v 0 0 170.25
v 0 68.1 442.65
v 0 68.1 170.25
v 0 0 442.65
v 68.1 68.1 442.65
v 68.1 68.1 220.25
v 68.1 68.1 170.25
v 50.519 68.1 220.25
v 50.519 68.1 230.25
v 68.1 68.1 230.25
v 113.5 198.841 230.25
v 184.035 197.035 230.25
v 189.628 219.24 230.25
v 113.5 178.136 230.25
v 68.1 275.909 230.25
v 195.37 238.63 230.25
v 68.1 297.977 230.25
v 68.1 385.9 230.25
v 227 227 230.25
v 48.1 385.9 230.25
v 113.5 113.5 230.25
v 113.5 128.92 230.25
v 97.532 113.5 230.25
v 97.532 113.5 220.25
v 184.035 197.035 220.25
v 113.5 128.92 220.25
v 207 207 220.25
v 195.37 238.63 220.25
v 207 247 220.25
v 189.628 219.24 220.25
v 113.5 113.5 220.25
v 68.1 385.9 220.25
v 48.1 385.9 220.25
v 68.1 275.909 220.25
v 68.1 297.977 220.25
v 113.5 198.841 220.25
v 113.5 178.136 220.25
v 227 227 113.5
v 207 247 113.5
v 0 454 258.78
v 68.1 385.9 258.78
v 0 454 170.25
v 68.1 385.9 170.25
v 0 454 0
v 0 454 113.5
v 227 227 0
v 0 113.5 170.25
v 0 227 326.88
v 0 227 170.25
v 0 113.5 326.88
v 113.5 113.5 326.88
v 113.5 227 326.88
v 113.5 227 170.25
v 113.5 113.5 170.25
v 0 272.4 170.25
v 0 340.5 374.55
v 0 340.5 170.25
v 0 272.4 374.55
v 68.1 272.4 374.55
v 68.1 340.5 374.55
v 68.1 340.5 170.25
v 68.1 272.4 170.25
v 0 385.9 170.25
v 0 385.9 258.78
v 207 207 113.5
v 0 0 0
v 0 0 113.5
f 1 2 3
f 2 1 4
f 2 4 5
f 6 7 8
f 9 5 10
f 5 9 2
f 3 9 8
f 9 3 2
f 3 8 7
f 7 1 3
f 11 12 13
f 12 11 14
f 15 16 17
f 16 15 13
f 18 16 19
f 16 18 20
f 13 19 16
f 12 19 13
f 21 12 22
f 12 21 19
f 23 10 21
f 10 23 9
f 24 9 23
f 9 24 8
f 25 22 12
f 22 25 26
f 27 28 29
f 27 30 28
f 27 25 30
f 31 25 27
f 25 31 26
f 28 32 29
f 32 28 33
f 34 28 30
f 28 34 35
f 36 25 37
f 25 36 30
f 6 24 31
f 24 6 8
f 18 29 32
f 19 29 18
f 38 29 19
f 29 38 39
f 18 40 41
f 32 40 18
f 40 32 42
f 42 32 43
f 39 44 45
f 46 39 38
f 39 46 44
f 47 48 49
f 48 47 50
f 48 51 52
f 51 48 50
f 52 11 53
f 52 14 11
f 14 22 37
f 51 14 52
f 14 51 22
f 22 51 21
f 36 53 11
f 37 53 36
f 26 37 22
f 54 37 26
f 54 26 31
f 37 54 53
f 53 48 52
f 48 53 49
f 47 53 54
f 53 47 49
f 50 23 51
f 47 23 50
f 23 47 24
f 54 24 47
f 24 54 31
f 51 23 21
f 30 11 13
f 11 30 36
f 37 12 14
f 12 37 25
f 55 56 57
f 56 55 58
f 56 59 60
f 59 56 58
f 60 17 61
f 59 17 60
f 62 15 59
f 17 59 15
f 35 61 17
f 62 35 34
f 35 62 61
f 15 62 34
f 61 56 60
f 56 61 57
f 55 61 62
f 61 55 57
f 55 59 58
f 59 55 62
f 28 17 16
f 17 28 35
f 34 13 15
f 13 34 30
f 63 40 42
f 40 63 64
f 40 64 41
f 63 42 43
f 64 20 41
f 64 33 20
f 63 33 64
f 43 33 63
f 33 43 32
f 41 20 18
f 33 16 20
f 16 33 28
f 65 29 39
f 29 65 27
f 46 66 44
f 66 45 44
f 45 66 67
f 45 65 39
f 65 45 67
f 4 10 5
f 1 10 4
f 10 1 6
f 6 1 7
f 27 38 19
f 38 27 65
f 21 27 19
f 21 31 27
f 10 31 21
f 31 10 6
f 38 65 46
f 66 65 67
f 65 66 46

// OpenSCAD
logo_base_size=454;
logo_base_height=logo_base_size*.25;

pillar_z_offset = 2;
pillar_7_x_scale = .25;
pillar_7_z_scale =  5;

pillar_spacing = .1;
pillar_vs_base_scaling_factor = .6;

normal_pillar_base = .15;
wide_pillar_base = .25;


analytics_pillar_support_height = 230;

module analytics_pillar(base_ratio, 
                        height_ratio,
                        x_offset_ratio, 
                        y_offset_ratio, 
                        z_offset_ratio,
                        support_angle){

    difference(){
        pillar_base = logo_base_size * base_ratio;
        pillar_height = logo_base_height * height_ratio;
        
        if(y_offset_ratio > 0) {
                y_offset = (y_offset_ratio * logo_base_size) - pillar_base;
                translate([0,
                    y_offset, 
                    z_offset_ratio*logo_base_height])
                       
            union(){
                cube([pillar_base,pillar_base,pillar_height]);
                color("red")
                translate([pillar_base/2-10, pillar_base/2-10,50])
                rotate(support_angle)
                cube([300, 20, 10]);
            }
            
        } else {
            translate([(x_offset_ratio * logo_base_size) - pillar_base,
                (y_offset_ratio * logo_base_size), 
                 z_offset_ratio*logo_base_height]) 
            
            union(){
                cube([pillar_base,pillar_base,pillar_height]);
                color("red")
                translate([pillar_base/2+10,pillar_base/2,50])
                rotate(support_angle)
                cube([300, 20, 10]);
            }
                      
        }
        
        linear_extrude(1000)
            polygon(points =[
                                [logo_base_size,logo_base_size],
                                [logo_base_size,0],
                                [0,logo_base_size]
                             ]
            );
        
    }
    
    
}




difference(){
    union(){
        //base
        linear_extrude(logo_base_height)
            polygon(points =[
                                [0,0],
                                [logo_base_size,0],
                                [0,logo_base_size]
                            ]
                    );



        //Origin
        analytics_pillar(base_ratio=normal_pillar_base, 
                         height_ratio = 4* pillar_vs_base_scaling_factor, 
                         x_offset_ratio = normal_pillar_base,
                         y_offset_ratio = 0, 
                         z_offset_ratio = 1.5,
                         support_angle=44);

        //X-Pillars
        analytics_pillar(base_ratio=wide_pillar_base, 
                         height_ratio = 3* pillar_vs_base_scaling_factor, 
                         x_offset_ratio = 1- (2 * normal_pillar_base + 2* pillar_spacing), 
                         y_offset_ratio = 0, 
                         z_offset_ratio = 1.5,
                         support_angle=60);

        analytics_pillar(base_ratio=normal_pillar_base, 
                         height_ratio = 4.5* pillar_vs_base_scaling_factor, 
                         x_offset_ratio = 1 - (normal_pillar_base + pillar_spacing),
                         y_offset_ratio = 0, 
                         z_offset_ratio = 1.5,
                         support_angle=105);

        analytics_pillar(base_ratio=normal_pillar_base, 
                         height_ratio = 5 * pillar_vs_base_scaling_factor, 
                         x_offset_ratio = 1,
                         y_offset_ratio = 0, 
                         z_offset_ratio = 1.5,
                         support_angle=135);
                         
                         
        //Y-Pillars
        analytics_pillar(base_ratio=wide_pillar_base, 
                         height_ratio = 2.3* pillar_vs_base_scaling_factor, 
                         x_offset_ratio = 0,
                         y_offset_ratio = 1- (2 * normal_pillar_base + 2* pillar_spacing), 
                         z_offset_ratio = 1.5,
                         support_angle=15);

        analytics_pillar(base_ratio=normal_pillar_base, 
                         height_ratio = 3* pillar_vs_base_scaling_factor, 
                         x_offset_ratio = 0,
                         y_offset_ratio = 1 - (normal_pillar_base + pillar_spacing), 
                         z_offset_ratio = 1.5,
                         support_angle=-25);

        analytics_pillar(base_ratio=normal_pillar_base, 
                         height_ratio = 1.3 * pillar_vs_base_scaling_factor, 
                         x_offset_ratio = 0,
                         y_offset_ratio = 1, 
                         z_offset_ratio = 1.5,
                         support_angle=-45);
             
        difference(){
            translate([logo_base_size/2-20,logo_base_size/2-20,0])
            cube([40,40,230]);
            linear_extrude(1000)
                    polygon(points =[
                                        [logo_base_size,logo_base_size],
                                        [logo_base_size,0],
                                        [0,logo_base_size]
                                     ]
                    );
        }
    }

    linear_extrude(1000)
                polygon(points =[
                                    [logo_base_size,logo_base_size],
                                    [logo_base_size,0],
                                    [0,0]
                                 ]
                );
}
